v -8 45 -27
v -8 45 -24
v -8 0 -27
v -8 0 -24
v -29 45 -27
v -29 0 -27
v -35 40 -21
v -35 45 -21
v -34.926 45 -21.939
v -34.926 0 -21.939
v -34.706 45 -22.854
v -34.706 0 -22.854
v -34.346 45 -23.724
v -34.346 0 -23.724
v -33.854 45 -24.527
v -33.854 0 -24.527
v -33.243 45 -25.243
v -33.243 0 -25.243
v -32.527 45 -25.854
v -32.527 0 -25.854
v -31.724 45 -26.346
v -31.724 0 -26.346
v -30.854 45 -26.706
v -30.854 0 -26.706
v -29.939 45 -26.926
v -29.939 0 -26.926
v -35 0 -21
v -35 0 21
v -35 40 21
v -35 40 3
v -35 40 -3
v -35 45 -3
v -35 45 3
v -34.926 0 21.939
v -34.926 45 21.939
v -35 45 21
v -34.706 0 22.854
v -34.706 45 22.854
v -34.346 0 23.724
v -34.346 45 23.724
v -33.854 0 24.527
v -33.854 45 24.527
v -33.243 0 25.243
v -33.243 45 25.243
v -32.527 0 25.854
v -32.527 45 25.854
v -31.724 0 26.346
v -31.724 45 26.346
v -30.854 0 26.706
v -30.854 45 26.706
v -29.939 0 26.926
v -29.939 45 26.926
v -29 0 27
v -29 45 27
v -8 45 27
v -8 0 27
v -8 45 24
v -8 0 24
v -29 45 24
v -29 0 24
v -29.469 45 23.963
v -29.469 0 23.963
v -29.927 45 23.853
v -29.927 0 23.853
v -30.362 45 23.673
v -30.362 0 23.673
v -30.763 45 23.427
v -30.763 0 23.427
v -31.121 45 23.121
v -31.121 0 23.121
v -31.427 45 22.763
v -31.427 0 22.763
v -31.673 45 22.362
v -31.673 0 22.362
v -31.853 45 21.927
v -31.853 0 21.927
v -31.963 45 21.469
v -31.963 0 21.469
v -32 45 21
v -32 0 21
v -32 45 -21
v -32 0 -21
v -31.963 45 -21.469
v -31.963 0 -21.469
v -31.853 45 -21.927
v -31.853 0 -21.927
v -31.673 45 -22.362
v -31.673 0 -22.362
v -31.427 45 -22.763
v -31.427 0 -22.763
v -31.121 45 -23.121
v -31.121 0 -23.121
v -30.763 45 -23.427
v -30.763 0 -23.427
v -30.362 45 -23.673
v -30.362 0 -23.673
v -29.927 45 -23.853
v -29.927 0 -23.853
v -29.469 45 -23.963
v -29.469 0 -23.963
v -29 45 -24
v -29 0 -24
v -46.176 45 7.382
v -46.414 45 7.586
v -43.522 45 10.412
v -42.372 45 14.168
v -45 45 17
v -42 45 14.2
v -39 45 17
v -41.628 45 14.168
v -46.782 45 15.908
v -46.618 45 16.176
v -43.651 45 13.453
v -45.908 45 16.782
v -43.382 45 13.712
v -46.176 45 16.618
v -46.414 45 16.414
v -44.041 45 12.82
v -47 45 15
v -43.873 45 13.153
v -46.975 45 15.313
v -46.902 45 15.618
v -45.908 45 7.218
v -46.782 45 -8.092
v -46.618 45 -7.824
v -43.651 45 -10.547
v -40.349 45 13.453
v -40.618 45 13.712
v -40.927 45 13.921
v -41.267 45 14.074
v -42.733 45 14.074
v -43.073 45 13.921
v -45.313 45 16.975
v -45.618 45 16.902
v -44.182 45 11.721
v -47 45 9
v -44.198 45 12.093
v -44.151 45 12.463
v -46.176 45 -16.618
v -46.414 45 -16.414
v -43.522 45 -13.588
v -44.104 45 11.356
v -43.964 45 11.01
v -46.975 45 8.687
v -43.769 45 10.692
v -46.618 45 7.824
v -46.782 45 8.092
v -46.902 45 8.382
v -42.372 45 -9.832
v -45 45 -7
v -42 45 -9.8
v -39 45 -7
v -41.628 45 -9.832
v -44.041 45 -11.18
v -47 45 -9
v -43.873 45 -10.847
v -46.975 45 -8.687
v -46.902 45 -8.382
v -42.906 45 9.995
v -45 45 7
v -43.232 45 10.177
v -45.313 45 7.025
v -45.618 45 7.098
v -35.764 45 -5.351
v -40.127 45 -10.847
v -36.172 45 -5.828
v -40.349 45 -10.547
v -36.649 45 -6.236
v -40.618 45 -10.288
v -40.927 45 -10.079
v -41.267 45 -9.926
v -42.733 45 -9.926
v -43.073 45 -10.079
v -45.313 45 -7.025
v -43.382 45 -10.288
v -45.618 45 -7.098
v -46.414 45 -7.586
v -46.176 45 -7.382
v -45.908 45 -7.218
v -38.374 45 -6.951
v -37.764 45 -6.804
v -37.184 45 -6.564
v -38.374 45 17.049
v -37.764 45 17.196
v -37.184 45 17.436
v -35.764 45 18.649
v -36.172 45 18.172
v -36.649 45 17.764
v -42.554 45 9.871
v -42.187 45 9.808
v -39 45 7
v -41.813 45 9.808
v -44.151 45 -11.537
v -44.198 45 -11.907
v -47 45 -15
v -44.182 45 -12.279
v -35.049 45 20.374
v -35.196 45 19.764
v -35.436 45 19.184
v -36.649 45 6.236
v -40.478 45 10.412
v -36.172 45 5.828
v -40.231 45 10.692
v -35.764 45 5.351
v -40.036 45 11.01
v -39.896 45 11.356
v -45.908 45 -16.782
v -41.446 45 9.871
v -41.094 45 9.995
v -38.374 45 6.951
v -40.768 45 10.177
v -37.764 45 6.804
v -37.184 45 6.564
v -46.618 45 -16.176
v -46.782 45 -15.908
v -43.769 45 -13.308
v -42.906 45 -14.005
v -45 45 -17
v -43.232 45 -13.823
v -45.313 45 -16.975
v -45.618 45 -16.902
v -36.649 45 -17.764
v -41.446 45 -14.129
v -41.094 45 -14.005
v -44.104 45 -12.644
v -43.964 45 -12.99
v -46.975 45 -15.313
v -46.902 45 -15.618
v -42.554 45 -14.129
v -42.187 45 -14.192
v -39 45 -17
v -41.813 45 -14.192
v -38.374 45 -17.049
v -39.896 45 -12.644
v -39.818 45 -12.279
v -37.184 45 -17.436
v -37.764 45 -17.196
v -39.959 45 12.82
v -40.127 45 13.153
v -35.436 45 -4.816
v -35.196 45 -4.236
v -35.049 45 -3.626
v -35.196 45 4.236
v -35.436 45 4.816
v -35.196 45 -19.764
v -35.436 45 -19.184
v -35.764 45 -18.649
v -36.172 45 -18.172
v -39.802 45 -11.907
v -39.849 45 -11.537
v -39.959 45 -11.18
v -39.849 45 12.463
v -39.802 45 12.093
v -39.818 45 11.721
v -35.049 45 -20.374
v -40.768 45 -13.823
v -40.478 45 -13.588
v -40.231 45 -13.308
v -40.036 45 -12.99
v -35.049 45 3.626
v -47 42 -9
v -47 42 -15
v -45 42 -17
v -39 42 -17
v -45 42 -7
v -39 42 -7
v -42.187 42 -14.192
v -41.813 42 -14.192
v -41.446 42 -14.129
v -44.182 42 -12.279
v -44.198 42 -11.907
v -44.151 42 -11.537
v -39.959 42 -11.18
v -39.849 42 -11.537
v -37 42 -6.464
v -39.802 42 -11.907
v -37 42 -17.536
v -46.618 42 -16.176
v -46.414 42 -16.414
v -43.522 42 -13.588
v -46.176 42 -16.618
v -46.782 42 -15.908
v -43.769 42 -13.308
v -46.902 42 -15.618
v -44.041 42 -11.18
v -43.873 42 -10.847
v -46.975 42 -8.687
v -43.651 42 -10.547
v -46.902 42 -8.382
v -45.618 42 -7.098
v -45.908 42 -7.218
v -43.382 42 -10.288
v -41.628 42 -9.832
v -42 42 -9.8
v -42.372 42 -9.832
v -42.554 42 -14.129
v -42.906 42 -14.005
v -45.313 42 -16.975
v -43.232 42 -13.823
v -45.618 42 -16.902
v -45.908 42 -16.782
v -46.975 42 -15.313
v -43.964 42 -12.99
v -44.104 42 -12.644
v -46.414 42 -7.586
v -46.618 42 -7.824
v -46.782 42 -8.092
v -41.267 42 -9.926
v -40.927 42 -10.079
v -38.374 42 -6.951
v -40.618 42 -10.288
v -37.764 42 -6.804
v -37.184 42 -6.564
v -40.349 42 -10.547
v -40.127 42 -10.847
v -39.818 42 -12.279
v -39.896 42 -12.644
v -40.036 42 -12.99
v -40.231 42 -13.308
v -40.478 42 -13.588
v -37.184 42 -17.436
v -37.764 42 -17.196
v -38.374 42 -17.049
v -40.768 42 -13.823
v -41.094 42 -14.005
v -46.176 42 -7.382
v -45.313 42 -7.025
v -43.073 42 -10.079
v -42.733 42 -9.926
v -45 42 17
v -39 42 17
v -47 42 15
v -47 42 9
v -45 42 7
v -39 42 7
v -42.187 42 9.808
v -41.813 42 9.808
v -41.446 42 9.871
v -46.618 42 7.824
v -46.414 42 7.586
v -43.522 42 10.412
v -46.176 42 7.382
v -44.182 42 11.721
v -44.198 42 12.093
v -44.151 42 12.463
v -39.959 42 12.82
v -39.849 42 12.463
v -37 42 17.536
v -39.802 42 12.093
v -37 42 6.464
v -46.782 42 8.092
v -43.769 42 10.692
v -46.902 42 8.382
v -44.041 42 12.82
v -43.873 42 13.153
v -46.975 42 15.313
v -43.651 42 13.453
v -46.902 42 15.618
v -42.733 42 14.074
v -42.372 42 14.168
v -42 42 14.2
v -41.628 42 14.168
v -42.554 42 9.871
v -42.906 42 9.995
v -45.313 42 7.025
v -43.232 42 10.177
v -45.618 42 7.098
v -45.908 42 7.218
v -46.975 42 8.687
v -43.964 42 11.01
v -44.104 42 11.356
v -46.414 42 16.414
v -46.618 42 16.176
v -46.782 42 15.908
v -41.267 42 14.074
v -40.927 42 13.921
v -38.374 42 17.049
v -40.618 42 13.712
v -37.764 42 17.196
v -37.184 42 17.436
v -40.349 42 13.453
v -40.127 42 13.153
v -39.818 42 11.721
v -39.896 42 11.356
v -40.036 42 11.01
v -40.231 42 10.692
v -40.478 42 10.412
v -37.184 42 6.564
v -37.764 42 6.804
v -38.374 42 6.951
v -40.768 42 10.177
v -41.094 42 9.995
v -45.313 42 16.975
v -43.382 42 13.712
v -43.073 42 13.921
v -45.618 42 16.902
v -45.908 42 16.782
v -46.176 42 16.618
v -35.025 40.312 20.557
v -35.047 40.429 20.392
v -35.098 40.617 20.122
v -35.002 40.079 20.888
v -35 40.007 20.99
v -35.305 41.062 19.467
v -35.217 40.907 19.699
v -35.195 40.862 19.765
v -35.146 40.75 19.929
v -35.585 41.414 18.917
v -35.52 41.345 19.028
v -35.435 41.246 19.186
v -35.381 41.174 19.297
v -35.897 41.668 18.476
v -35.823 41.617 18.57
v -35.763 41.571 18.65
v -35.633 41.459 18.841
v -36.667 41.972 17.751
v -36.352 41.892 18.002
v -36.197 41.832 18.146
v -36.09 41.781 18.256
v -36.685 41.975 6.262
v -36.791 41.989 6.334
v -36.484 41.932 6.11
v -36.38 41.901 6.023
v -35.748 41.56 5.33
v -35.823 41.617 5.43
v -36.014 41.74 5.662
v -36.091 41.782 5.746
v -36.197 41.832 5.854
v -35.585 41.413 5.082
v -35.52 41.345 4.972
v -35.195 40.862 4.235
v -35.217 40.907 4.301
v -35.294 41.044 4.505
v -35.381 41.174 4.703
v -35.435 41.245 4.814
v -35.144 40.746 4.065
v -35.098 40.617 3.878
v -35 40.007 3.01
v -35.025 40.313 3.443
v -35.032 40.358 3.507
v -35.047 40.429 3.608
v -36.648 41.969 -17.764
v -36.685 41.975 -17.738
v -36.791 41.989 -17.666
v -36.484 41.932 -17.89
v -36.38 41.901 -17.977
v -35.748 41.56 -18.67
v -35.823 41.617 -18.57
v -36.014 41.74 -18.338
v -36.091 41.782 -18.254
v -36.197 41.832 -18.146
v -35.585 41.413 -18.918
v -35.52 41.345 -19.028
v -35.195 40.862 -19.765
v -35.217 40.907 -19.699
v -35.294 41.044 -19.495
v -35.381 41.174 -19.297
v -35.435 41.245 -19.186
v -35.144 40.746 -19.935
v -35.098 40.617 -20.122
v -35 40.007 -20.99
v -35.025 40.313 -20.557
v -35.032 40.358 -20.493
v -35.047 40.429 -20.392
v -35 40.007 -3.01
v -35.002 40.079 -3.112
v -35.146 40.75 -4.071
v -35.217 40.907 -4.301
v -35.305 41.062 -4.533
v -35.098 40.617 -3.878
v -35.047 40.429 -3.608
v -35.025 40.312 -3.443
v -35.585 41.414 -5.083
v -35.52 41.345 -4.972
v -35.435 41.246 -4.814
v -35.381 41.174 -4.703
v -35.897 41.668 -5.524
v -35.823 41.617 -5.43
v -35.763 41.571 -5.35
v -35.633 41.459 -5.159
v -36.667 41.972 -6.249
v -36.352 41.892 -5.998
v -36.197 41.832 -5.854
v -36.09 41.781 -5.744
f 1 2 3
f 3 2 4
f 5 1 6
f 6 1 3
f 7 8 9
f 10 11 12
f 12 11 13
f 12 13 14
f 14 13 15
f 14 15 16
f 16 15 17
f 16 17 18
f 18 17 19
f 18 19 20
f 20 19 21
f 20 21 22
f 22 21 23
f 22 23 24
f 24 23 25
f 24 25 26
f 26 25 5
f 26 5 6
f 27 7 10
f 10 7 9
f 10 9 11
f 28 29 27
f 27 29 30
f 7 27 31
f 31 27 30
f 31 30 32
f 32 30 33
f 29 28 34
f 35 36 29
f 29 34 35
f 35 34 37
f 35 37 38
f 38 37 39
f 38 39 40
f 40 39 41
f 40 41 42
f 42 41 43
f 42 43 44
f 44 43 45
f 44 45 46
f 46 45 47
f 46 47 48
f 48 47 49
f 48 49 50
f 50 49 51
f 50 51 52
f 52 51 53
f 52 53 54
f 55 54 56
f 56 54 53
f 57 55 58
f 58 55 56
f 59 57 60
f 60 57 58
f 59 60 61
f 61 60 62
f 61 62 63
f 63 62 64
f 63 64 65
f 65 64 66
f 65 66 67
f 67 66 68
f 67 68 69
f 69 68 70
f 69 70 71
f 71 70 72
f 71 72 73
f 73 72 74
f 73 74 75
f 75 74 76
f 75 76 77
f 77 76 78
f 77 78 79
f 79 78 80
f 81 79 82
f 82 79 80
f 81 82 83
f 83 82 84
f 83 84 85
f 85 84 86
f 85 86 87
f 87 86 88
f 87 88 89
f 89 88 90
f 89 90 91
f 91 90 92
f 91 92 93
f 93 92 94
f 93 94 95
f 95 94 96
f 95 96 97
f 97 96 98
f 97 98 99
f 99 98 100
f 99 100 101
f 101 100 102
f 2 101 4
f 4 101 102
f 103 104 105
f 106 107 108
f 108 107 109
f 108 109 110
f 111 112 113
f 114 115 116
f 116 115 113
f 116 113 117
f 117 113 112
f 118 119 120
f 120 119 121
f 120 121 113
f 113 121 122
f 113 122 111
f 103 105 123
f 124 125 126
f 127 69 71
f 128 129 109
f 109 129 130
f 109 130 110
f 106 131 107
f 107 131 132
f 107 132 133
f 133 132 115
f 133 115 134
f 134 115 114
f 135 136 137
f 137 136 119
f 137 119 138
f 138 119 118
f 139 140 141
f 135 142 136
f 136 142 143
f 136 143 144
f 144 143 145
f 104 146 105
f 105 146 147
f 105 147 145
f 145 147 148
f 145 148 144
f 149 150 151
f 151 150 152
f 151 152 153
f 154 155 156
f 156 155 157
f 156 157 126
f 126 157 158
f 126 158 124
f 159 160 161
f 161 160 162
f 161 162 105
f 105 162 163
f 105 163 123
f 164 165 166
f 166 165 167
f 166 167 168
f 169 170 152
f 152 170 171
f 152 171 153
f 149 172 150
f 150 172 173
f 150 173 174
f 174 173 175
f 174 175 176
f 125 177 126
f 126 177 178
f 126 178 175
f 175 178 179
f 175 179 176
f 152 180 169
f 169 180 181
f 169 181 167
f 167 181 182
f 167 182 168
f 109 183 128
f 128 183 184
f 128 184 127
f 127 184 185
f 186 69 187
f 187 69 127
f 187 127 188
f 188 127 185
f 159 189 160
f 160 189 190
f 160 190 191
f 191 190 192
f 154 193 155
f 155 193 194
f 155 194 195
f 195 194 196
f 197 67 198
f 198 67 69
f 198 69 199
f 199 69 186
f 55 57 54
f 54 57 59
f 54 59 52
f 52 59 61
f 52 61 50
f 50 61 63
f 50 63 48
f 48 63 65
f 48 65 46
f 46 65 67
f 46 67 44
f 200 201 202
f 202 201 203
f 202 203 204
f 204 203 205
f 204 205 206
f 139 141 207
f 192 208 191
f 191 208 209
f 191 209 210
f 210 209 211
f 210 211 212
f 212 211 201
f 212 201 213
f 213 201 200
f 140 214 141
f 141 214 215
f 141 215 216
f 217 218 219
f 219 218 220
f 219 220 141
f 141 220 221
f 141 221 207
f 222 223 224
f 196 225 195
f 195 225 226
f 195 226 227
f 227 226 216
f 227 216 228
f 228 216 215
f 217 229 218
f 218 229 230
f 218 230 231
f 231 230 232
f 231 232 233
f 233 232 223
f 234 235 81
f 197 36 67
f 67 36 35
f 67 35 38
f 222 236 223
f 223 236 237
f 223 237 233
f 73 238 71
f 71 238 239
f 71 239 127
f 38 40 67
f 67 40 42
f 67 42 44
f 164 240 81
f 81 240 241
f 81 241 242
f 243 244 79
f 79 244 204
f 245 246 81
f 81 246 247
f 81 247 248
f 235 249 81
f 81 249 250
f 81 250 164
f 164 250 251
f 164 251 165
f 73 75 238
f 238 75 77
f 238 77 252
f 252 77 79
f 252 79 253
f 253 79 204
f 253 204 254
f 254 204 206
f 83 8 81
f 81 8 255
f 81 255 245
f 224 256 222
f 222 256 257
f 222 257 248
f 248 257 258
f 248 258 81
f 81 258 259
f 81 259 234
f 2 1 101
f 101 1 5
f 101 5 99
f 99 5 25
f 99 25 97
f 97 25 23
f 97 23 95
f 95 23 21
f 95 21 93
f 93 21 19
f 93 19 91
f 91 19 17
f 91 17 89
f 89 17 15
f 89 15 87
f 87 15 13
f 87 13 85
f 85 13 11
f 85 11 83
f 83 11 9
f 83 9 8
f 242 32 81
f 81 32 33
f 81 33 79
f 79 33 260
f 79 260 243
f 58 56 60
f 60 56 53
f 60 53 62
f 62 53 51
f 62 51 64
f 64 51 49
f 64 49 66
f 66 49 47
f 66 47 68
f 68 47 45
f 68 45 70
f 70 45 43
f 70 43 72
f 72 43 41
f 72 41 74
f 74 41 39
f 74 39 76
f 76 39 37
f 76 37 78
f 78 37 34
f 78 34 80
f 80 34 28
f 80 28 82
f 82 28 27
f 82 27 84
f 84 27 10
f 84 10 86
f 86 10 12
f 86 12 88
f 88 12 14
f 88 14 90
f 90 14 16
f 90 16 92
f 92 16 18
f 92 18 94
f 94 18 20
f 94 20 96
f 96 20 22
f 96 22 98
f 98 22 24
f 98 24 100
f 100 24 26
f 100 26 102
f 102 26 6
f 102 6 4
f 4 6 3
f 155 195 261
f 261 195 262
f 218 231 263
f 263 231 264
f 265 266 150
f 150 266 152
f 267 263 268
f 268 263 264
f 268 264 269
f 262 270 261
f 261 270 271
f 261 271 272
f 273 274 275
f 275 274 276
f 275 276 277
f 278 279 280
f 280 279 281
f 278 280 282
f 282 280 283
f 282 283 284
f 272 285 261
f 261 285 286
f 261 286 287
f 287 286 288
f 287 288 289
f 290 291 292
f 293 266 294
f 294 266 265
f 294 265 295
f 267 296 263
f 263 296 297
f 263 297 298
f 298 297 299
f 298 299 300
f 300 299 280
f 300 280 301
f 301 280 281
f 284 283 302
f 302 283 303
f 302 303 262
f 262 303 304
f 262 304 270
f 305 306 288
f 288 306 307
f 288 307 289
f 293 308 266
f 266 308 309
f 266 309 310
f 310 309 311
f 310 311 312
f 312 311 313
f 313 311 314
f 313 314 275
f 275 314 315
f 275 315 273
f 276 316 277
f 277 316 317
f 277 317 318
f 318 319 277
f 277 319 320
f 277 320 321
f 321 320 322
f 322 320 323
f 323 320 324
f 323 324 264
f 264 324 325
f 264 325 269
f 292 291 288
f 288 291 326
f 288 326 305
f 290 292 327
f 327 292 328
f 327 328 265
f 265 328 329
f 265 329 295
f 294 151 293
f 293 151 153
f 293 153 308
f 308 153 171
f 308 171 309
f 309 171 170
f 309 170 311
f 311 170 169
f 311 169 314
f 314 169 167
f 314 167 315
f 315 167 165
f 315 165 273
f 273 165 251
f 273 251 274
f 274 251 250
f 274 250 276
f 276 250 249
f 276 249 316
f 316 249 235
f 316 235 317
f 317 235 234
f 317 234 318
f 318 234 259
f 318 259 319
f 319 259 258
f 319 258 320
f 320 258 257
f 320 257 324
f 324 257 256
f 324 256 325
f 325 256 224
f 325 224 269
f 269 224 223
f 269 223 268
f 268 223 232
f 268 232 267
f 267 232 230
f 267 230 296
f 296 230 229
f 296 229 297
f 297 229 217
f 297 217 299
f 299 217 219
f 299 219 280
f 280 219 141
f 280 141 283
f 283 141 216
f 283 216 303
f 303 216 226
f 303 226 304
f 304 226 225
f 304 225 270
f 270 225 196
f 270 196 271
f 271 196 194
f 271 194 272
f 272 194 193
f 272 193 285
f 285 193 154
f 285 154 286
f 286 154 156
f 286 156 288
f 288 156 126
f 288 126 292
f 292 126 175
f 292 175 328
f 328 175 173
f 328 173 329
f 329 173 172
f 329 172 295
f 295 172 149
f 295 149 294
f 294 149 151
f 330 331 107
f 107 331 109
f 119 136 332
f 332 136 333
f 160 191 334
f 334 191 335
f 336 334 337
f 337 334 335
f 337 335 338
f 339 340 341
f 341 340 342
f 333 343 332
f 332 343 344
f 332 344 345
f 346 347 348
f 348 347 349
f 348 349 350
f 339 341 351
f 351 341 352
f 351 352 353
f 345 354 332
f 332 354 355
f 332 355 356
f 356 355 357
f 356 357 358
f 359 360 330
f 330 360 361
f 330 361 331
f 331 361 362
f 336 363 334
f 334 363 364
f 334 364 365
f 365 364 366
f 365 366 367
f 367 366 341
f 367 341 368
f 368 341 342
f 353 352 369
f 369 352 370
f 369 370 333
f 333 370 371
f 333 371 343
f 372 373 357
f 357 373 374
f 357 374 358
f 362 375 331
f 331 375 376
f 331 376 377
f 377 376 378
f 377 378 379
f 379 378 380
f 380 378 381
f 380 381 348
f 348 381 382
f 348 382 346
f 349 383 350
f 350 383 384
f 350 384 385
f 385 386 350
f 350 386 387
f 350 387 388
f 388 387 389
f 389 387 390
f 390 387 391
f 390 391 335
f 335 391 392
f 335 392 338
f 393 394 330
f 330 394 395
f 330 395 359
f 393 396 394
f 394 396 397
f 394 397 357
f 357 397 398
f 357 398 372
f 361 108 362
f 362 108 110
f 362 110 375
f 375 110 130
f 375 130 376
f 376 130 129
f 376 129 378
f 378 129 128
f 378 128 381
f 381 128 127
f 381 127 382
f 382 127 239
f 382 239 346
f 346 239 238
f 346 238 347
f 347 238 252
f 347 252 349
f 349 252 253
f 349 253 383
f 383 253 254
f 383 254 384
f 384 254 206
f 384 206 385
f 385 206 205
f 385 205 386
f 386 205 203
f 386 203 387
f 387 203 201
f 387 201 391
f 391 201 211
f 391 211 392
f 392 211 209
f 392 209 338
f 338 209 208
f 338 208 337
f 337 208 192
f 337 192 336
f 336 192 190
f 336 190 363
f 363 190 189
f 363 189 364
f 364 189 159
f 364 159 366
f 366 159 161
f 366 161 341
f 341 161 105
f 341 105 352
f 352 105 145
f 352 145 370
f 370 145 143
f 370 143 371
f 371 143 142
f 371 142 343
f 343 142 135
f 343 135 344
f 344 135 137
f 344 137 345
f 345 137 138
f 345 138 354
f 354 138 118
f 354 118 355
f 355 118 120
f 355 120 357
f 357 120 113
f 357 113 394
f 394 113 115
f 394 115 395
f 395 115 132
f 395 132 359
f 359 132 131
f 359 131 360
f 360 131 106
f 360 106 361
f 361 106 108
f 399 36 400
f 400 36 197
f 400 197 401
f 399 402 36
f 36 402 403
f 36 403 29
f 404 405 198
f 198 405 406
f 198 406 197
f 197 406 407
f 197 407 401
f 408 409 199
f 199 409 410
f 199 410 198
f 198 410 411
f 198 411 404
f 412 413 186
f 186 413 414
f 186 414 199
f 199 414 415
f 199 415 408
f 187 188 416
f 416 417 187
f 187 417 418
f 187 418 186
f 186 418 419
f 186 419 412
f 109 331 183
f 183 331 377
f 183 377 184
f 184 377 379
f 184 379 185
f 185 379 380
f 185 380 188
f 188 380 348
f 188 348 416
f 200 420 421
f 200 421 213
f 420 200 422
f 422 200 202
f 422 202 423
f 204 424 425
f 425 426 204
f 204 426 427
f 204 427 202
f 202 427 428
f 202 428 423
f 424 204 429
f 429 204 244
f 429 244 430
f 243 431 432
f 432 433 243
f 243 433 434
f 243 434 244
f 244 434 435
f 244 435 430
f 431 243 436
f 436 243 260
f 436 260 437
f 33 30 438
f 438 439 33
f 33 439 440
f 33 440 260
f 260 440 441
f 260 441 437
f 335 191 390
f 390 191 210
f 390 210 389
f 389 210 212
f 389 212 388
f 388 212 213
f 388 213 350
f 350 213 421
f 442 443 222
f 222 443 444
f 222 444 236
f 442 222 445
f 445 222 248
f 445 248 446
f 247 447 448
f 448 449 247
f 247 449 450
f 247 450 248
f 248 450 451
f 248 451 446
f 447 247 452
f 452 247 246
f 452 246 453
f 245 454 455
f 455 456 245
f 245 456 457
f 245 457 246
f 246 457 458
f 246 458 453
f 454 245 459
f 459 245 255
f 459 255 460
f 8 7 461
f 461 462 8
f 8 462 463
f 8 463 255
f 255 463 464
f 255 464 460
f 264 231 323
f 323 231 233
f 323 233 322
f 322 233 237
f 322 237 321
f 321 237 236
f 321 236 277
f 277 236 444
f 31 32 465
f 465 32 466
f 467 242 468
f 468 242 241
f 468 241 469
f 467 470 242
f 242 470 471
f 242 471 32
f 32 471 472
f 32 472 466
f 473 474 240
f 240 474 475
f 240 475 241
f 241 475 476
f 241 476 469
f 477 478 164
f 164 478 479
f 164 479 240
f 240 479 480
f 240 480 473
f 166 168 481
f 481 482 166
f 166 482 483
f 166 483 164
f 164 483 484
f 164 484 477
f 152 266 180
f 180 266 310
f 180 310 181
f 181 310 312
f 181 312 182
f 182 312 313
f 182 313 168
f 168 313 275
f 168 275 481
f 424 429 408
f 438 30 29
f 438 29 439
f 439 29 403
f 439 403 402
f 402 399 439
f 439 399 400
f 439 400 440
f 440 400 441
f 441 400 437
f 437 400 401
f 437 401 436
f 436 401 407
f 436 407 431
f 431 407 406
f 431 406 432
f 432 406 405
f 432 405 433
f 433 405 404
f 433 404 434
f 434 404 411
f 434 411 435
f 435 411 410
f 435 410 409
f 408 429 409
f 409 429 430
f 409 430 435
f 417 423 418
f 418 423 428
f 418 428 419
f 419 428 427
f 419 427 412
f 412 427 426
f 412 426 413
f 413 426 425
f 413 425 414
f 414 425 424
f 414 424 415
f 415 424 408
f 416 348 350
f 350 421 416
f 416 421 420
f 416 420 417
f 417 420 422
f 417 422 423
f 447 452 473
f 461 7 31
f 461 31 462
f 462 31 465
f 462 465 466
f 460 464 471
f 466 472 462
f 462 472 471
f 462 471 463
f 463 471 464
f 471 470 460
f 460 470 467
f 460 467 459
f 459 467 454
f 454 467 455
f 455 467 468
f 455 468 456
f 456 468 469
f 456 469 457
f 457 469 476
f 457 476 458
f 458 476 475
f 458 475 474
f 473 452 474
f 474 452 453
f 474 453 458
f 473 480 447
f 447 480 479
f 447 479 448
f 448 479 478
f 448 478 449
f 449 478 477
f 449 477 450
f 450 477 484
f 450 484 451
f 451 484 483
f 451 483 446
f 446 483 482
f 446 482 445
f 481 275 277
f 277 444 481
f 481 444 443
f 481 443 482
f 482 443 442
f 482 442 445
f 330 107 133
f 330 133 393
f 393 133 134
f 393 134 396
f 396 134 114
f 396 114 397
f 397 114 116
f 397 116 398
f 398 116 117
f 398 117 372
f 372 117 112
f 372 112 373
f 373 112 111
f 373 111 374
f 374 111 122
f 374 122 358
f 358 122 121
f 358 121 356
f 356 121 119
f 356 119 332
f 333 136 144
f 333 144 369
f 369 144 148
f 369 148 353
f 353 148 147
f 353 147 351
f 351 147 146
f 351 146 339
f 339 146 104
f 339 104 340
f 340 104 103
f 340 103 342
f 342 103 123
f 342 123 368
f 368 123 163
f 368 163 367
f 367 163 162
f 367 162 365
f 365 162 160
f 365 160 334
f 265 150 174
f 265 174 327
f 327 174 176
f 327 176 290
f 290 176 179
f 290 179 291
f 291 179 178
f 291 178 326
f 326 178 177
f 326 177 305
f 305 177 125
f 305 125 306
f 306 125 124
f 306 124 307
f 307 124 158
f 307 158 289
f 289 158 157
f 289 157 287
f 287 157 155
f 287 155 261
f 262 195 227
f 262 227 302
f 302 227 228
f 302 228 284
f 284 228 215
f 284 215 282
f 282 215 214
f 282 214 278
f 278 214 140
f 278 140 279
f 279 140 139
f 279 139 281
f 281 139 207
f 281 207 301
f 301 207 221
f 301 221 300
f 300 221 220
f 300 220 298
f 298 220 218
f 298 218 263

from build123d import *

# Parameters (mm, degrees)
BOSS_EXTRUDE1_DEPTH = 45
SKETCH4_W           = 12
SKETCH4_H           = 10
SKETCH4_R           = 2.2
BOSS_EXTRUDE2_DEPTH = 3
FILLET1_R           = 4
FILLET2_R           = 2
FILLET3_R           = 2


with BuildPart() as part:
    # Sketch3 → Boss-Extrude1 (new body)
    with BuildSketch(Plane(origin=(0, 0, 0), x_dir=(1, 0, 0), z_dir=(0, 1, 0))):
        with BuildLine():
            Line((-8, 24), (-29, 24))
            ThreePointArc((-29, 24), (-31.121320344, 23.121320344), (-32, 21))
            Line((-32, 21), (-32, -21))
            ThreePointArc((-32, -21), (-31.121320344, -23.121320344), (-29, -24))
            Line((-29, -24), (-8, -24))
            Line((-8, -24), (-8, -27))
            Line((-8, -27), (-29, -27))
            ThreePointArc((-29, -27), (-33.242640687, -25.242640687), (-35, -21))
            Line((-35, -21), (-35, 21))
            ThreePointArc((-35, 21), (-33.242640687, 25.242640687), (-29, 27))
            Line((-29, 27), (-8, 27))
            Line((-8, 27), (-8, 24))
        make_face()
    extrude(amount=BOSS_EXTRUDE1_DEPTH)

    # Sketch4 → Boss-Extrude2 (add)
    # profile 1 of 2: a face of its own
    with BuildSketch(Plane(origin=(0, 45, 0), x_dir=(1, 0, 0), z_dir=(0, 1, 0))):
        with Locations((-41, 12)):
            Rectangle(SKETCH4_W, SKETCH4_H)
        with Locations(Location((-42, 12, 0), (0, 0, 270))):
            Circle(SKETCH4_R, mode=Mode.SUBTRACT)
    # profile 2 of 2: a face of its own
    with BuildSketch(Plane(origin=(0, 45, 0), x_dir=(1, 0, 0), z_dir=(0, 1, 0))):
        with Locations((-41, -12)):
            Rectangle(SKETCH4_W, SKETCH4_H)
        with Locations(Location((-42, -12, 0), (0, 0, 270))):
            Circle(SKETCH4_R, mode=Mode.SUBTRACT)
    extrude(amount=-BOSS_EXTRUDE2_DEPTH)

    # Fillet1
    fillet1_edges = [part.edges().sort_by_distance(p)[0] for p in [
        (-35, 43.5, -17),
        (-35, 43.5, -7),
        (-35, 43.5, 7),
        (-35, 43.5, 17),
    ]]
    fillet(fillet1_edges, radius=FILLET1_R - 0.0001)  # a hair under: the kernel refuses the full size

    # Fillet2
    fillet2_edges = [part.edges().sort_by_distance(p)[0] for p in [
        (-35, 42, -12),
        (-35, 42, 12),
    ]]
    fillet(fillet2_edges, radius=FILLET2_R)

    # Fillet3
    fillet3_edges = [part.edges().sort_by_distance(p)[0] for p in [
        (-47, 43.5, -7),
        (-47, 43.5, -17),
        (-47, 43.5, 17),
        (-47, 43.5, 7),
    ]]
    fillet(fillet3_edges, radius=FILLET3_R)


solid = part.part
